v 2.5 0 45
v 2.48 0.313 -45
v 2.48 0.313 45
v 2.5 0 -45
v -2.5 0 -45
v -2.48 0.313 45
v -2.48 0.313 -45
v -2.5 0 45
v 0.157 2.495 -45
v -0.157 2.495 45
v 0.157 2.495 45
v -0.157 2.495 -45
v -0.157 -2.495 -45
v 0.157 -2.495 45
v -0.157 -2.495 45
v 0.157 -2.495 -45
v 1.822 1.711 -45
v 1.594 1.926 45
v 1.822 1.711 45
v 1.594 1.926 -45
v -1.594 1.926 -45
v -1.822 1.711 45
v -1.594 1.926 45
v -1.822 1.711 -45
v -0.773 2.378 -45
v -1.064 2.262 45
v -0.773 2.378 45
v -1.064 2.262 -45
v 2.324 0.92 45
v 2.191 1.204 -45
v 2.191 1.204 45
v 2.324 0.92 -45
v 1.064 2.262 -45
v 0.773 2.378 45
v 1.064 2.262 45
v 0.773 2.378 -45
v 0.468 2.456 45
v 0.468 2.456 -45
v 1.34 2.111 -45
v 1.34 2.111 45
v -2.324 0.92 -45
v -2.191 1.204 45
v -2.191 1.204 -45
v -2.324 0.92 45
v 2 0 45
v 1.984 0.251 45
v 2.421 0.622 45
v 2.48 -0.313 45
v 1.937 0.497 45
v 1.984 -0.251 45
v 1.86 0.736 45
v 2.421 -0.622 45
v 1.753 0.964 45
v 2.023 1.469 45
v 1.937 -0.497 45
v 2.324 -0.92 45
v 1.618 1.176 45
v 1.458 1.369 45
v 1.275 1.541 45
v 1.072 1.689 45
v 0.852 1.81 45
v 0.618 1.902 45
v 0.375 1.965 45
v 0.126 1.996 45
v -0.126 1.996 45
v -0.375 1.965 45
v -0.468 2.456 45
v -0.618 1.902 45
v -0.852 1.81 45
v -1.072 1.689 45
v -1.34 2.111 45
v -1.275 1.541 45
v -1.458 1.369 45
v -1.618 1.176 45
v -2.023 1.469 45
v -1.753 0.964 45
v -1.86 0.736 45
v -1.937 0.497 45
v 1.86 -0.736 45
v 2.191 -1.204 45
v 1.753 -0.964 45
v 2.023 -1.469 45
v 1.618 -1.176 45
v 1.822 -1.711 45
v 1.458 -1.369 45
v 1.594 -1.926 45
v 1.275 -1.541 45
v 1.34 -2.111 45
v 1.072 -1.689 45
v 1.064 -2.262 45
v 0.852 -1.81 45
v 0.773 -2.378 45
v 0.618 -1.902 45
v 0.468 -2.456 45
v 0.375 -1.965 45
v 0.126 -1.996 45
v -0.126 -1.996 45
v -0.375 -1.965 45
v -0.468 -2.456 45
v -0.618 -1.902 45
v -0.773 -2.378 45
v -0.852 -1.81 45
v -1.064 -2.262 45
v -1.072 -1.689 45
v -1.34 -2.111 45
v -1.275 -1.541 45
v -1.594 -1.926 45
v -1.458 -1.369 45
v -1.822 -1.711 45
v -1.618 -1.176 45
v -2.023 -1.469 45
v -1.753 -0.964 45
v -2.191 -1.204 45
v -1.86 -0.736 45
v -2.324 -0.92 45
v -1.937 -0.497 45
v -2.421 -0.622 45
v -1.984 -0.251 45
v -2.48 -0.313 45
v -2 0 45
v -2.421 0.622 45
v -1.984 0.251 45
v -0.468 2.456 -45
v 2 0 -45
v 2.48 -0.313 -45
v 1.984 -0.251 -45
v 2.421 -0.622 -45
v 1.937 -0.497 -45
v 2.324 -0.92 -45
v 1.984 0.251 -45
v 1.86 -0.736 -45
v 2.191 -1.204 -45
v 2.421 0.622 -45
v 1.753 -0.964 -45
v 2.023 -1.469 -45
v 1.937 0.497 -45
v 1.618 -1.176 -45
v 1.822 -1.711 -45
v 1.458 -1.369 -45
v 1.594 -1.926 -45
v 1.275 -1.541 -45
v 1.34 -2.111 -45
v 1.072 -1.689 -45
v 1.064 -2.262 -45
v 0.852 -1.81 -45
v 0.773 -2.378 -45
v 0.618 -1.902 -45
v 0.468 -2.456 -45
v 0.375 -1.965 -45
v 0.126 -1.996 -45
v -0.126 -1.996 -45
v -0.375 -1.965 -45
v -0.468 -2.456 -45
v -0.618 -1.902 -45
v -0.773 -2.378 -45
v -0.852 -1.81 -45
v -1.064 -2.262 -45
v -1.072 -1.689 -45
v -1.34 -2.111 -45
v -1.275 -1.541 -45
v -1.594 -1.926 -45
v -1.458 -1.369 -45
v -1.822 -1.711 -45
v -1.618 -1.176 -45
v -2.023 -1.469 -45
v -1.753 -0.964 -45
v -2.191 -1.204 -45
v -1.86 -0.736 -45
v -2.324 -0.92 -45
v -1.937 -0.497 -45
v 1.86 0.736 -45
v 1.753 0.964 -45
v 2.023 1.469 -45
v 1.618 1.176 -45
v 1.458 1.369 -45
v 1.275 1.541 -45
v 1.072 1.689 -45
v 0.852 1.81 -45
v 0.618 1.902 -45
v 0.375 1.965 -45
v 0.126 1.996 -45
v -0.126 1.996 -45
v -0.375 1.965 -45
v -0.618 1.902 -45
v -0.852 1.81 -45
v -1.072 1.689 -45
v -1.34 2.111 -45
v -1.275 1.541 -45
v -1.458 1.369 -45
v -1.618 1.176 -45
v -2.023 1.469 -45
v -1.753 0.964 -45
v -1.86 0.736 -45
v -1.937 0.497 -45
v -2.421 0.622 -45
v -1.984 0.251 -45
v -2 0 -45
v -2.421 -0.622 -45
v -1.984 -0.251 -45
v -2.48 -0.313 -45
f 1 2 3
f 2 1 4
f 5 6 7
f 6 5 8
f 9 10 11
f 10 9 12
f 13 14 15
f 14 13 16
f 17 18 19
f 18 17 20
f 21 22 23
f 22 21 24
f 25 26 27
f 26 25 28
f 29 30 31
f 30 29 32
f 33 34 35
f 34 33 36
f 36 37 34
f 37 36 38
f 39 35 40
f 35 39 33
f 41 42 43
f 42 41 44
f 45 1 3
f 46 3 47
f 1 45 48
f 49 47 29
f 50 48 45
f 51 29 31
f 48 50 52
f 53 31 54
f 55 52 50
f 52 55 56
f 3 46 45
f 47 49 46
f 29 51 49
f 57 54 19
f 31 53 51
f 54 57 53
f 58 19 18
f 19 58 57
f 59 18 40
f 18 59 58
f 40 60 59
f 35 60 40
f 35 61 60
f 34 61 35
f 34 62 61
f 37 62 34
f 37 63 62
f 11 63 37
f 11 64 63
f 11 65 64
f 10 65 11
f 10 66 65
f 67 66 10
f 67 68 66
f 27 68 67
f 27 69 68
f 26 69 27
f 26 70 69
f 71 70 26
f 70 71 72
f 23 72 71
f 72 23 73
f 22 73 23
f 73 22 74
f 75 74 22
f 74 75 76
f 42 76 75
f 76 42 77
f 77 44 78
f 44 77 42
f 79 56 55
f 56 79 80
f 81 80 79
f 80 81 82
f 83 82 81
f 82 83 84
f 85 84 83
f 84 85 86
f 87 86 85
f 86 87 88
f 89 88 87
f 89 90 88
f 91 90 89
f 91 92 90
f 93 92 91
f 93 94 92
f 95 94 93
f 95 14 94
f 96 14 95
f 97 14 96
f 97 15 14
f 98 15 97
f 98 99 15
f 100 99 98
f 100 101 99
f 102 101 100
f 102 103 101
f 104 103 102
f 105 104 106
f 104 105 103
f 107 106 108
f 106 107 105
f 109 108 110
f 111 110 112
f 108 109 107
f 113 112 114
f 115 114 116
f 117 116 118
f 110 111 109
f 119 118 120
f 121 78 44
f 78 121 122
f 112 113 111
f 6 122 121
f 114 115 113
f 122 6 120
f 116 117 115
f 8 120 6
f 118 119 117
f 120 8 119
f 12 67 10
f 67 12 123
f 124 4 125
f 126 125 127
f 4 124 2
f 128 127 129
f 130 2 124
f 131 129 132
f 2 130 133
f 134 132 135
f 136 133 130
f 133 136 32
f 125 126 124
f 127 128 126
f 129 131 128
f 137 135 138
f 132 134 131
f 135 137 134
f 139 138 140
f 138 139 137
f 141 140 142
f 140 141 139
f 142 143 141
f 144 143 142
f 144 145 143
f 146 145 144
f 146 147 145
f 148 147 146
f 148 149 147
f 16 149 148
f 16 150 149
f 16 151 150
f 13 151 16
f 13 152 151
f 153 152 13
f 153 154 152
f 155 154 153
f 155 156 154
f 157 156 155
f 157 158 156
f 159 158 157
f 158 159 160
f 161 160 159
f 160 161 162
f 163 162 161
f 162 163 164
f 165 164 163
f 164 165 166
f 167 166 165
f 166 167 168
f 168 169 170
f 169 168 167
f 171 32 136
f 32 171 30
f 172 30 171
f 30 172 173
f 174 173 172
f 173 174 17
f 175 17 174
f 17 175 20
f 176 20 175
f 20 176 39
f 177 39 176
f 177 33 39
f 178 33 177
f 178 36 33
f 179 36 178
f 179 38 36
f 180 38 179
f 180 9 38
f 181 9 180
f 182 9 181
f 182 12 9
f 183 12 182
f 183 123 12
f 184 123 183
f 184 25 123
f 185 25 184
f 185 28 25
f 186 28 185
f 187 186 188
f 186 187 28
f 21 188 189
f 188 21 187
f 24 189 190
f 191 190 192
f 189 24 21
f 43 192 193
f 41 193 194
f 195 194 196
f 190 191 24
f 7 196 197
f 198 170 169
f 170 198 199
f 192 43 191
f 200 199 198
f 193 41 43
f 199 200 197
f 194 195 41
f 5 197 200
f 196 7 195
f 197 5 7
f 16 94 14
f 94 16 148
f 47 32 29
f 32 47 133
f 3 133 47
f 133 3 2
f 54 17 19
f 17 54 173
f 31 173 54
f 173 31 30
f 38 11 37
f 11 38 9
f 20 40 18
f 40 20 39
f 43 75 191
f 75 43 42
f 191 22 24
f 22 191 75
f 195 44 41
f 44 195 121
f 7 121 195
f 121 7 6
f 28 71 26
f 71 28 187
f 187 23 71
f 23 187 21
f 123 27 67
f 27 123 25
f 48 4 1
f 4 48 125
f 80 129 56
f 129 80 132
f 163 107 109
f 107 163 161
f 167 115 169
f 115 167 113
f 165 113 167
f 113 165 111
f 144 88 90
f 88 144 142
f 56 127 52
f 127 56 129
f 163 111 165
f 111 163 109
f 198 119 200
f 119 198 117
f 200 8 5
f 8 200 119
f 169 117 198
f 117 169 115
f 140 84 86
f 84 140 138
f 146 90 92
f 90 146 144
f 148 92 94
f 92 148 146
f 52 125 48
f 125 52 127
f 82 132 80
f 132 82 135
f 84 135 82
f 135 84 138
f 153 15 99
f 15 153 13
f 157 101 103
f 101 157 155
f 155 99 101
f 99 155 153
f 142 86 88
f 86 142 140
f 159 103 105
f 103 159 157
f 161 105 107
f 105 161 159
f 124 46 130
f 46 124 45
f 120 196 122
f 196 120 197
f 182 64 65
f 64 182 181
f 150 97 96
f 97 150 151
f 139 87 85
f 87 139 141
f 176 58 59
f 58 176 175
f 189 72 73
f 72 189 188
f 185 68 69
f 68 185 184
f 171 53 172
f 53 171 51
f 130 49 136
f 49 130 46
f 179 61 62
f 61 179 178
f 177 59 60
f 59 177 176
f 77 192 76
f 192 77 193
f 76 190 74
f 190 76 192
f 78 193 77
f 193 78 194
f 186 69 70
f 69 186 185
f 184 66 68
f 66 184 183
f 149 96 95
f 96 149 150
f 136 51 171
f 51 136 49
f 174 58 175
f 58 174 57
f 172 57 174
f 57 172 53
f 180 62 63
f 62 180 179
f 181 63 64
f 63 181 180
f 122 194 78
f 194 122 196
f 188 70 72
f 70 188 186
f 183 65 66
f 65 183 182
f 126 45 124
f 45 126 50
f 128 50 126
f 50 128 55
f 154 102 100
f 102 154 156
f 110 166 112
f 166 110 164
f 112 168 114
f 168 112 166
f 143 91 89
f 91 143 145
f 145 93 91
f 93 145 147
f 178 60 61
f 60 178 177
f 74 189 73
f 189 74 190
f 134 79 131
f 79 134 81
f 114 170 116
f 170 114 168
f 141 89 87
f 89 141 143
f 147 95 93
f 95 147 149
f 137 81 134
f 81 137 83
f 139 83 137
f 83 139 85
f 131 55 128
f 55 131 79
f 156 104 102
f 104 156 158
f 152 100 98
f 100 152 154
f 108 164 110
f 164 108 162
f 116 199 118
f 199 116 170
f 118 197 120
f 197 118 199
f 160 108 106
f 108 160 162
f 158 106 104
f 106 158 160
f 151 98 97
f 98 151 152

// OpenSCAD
$fn = 50;


difference() {
	union() {
		translate(v = [0, 0, -45.0000000000]) {
			cylinder(h = 90, r = 2.5000000000);
		}
	}
	union() {
		translate(v = [0, 0, -100.0000000000]) {
			cylinder(h = 200, r = 2);
		}
	}
}
